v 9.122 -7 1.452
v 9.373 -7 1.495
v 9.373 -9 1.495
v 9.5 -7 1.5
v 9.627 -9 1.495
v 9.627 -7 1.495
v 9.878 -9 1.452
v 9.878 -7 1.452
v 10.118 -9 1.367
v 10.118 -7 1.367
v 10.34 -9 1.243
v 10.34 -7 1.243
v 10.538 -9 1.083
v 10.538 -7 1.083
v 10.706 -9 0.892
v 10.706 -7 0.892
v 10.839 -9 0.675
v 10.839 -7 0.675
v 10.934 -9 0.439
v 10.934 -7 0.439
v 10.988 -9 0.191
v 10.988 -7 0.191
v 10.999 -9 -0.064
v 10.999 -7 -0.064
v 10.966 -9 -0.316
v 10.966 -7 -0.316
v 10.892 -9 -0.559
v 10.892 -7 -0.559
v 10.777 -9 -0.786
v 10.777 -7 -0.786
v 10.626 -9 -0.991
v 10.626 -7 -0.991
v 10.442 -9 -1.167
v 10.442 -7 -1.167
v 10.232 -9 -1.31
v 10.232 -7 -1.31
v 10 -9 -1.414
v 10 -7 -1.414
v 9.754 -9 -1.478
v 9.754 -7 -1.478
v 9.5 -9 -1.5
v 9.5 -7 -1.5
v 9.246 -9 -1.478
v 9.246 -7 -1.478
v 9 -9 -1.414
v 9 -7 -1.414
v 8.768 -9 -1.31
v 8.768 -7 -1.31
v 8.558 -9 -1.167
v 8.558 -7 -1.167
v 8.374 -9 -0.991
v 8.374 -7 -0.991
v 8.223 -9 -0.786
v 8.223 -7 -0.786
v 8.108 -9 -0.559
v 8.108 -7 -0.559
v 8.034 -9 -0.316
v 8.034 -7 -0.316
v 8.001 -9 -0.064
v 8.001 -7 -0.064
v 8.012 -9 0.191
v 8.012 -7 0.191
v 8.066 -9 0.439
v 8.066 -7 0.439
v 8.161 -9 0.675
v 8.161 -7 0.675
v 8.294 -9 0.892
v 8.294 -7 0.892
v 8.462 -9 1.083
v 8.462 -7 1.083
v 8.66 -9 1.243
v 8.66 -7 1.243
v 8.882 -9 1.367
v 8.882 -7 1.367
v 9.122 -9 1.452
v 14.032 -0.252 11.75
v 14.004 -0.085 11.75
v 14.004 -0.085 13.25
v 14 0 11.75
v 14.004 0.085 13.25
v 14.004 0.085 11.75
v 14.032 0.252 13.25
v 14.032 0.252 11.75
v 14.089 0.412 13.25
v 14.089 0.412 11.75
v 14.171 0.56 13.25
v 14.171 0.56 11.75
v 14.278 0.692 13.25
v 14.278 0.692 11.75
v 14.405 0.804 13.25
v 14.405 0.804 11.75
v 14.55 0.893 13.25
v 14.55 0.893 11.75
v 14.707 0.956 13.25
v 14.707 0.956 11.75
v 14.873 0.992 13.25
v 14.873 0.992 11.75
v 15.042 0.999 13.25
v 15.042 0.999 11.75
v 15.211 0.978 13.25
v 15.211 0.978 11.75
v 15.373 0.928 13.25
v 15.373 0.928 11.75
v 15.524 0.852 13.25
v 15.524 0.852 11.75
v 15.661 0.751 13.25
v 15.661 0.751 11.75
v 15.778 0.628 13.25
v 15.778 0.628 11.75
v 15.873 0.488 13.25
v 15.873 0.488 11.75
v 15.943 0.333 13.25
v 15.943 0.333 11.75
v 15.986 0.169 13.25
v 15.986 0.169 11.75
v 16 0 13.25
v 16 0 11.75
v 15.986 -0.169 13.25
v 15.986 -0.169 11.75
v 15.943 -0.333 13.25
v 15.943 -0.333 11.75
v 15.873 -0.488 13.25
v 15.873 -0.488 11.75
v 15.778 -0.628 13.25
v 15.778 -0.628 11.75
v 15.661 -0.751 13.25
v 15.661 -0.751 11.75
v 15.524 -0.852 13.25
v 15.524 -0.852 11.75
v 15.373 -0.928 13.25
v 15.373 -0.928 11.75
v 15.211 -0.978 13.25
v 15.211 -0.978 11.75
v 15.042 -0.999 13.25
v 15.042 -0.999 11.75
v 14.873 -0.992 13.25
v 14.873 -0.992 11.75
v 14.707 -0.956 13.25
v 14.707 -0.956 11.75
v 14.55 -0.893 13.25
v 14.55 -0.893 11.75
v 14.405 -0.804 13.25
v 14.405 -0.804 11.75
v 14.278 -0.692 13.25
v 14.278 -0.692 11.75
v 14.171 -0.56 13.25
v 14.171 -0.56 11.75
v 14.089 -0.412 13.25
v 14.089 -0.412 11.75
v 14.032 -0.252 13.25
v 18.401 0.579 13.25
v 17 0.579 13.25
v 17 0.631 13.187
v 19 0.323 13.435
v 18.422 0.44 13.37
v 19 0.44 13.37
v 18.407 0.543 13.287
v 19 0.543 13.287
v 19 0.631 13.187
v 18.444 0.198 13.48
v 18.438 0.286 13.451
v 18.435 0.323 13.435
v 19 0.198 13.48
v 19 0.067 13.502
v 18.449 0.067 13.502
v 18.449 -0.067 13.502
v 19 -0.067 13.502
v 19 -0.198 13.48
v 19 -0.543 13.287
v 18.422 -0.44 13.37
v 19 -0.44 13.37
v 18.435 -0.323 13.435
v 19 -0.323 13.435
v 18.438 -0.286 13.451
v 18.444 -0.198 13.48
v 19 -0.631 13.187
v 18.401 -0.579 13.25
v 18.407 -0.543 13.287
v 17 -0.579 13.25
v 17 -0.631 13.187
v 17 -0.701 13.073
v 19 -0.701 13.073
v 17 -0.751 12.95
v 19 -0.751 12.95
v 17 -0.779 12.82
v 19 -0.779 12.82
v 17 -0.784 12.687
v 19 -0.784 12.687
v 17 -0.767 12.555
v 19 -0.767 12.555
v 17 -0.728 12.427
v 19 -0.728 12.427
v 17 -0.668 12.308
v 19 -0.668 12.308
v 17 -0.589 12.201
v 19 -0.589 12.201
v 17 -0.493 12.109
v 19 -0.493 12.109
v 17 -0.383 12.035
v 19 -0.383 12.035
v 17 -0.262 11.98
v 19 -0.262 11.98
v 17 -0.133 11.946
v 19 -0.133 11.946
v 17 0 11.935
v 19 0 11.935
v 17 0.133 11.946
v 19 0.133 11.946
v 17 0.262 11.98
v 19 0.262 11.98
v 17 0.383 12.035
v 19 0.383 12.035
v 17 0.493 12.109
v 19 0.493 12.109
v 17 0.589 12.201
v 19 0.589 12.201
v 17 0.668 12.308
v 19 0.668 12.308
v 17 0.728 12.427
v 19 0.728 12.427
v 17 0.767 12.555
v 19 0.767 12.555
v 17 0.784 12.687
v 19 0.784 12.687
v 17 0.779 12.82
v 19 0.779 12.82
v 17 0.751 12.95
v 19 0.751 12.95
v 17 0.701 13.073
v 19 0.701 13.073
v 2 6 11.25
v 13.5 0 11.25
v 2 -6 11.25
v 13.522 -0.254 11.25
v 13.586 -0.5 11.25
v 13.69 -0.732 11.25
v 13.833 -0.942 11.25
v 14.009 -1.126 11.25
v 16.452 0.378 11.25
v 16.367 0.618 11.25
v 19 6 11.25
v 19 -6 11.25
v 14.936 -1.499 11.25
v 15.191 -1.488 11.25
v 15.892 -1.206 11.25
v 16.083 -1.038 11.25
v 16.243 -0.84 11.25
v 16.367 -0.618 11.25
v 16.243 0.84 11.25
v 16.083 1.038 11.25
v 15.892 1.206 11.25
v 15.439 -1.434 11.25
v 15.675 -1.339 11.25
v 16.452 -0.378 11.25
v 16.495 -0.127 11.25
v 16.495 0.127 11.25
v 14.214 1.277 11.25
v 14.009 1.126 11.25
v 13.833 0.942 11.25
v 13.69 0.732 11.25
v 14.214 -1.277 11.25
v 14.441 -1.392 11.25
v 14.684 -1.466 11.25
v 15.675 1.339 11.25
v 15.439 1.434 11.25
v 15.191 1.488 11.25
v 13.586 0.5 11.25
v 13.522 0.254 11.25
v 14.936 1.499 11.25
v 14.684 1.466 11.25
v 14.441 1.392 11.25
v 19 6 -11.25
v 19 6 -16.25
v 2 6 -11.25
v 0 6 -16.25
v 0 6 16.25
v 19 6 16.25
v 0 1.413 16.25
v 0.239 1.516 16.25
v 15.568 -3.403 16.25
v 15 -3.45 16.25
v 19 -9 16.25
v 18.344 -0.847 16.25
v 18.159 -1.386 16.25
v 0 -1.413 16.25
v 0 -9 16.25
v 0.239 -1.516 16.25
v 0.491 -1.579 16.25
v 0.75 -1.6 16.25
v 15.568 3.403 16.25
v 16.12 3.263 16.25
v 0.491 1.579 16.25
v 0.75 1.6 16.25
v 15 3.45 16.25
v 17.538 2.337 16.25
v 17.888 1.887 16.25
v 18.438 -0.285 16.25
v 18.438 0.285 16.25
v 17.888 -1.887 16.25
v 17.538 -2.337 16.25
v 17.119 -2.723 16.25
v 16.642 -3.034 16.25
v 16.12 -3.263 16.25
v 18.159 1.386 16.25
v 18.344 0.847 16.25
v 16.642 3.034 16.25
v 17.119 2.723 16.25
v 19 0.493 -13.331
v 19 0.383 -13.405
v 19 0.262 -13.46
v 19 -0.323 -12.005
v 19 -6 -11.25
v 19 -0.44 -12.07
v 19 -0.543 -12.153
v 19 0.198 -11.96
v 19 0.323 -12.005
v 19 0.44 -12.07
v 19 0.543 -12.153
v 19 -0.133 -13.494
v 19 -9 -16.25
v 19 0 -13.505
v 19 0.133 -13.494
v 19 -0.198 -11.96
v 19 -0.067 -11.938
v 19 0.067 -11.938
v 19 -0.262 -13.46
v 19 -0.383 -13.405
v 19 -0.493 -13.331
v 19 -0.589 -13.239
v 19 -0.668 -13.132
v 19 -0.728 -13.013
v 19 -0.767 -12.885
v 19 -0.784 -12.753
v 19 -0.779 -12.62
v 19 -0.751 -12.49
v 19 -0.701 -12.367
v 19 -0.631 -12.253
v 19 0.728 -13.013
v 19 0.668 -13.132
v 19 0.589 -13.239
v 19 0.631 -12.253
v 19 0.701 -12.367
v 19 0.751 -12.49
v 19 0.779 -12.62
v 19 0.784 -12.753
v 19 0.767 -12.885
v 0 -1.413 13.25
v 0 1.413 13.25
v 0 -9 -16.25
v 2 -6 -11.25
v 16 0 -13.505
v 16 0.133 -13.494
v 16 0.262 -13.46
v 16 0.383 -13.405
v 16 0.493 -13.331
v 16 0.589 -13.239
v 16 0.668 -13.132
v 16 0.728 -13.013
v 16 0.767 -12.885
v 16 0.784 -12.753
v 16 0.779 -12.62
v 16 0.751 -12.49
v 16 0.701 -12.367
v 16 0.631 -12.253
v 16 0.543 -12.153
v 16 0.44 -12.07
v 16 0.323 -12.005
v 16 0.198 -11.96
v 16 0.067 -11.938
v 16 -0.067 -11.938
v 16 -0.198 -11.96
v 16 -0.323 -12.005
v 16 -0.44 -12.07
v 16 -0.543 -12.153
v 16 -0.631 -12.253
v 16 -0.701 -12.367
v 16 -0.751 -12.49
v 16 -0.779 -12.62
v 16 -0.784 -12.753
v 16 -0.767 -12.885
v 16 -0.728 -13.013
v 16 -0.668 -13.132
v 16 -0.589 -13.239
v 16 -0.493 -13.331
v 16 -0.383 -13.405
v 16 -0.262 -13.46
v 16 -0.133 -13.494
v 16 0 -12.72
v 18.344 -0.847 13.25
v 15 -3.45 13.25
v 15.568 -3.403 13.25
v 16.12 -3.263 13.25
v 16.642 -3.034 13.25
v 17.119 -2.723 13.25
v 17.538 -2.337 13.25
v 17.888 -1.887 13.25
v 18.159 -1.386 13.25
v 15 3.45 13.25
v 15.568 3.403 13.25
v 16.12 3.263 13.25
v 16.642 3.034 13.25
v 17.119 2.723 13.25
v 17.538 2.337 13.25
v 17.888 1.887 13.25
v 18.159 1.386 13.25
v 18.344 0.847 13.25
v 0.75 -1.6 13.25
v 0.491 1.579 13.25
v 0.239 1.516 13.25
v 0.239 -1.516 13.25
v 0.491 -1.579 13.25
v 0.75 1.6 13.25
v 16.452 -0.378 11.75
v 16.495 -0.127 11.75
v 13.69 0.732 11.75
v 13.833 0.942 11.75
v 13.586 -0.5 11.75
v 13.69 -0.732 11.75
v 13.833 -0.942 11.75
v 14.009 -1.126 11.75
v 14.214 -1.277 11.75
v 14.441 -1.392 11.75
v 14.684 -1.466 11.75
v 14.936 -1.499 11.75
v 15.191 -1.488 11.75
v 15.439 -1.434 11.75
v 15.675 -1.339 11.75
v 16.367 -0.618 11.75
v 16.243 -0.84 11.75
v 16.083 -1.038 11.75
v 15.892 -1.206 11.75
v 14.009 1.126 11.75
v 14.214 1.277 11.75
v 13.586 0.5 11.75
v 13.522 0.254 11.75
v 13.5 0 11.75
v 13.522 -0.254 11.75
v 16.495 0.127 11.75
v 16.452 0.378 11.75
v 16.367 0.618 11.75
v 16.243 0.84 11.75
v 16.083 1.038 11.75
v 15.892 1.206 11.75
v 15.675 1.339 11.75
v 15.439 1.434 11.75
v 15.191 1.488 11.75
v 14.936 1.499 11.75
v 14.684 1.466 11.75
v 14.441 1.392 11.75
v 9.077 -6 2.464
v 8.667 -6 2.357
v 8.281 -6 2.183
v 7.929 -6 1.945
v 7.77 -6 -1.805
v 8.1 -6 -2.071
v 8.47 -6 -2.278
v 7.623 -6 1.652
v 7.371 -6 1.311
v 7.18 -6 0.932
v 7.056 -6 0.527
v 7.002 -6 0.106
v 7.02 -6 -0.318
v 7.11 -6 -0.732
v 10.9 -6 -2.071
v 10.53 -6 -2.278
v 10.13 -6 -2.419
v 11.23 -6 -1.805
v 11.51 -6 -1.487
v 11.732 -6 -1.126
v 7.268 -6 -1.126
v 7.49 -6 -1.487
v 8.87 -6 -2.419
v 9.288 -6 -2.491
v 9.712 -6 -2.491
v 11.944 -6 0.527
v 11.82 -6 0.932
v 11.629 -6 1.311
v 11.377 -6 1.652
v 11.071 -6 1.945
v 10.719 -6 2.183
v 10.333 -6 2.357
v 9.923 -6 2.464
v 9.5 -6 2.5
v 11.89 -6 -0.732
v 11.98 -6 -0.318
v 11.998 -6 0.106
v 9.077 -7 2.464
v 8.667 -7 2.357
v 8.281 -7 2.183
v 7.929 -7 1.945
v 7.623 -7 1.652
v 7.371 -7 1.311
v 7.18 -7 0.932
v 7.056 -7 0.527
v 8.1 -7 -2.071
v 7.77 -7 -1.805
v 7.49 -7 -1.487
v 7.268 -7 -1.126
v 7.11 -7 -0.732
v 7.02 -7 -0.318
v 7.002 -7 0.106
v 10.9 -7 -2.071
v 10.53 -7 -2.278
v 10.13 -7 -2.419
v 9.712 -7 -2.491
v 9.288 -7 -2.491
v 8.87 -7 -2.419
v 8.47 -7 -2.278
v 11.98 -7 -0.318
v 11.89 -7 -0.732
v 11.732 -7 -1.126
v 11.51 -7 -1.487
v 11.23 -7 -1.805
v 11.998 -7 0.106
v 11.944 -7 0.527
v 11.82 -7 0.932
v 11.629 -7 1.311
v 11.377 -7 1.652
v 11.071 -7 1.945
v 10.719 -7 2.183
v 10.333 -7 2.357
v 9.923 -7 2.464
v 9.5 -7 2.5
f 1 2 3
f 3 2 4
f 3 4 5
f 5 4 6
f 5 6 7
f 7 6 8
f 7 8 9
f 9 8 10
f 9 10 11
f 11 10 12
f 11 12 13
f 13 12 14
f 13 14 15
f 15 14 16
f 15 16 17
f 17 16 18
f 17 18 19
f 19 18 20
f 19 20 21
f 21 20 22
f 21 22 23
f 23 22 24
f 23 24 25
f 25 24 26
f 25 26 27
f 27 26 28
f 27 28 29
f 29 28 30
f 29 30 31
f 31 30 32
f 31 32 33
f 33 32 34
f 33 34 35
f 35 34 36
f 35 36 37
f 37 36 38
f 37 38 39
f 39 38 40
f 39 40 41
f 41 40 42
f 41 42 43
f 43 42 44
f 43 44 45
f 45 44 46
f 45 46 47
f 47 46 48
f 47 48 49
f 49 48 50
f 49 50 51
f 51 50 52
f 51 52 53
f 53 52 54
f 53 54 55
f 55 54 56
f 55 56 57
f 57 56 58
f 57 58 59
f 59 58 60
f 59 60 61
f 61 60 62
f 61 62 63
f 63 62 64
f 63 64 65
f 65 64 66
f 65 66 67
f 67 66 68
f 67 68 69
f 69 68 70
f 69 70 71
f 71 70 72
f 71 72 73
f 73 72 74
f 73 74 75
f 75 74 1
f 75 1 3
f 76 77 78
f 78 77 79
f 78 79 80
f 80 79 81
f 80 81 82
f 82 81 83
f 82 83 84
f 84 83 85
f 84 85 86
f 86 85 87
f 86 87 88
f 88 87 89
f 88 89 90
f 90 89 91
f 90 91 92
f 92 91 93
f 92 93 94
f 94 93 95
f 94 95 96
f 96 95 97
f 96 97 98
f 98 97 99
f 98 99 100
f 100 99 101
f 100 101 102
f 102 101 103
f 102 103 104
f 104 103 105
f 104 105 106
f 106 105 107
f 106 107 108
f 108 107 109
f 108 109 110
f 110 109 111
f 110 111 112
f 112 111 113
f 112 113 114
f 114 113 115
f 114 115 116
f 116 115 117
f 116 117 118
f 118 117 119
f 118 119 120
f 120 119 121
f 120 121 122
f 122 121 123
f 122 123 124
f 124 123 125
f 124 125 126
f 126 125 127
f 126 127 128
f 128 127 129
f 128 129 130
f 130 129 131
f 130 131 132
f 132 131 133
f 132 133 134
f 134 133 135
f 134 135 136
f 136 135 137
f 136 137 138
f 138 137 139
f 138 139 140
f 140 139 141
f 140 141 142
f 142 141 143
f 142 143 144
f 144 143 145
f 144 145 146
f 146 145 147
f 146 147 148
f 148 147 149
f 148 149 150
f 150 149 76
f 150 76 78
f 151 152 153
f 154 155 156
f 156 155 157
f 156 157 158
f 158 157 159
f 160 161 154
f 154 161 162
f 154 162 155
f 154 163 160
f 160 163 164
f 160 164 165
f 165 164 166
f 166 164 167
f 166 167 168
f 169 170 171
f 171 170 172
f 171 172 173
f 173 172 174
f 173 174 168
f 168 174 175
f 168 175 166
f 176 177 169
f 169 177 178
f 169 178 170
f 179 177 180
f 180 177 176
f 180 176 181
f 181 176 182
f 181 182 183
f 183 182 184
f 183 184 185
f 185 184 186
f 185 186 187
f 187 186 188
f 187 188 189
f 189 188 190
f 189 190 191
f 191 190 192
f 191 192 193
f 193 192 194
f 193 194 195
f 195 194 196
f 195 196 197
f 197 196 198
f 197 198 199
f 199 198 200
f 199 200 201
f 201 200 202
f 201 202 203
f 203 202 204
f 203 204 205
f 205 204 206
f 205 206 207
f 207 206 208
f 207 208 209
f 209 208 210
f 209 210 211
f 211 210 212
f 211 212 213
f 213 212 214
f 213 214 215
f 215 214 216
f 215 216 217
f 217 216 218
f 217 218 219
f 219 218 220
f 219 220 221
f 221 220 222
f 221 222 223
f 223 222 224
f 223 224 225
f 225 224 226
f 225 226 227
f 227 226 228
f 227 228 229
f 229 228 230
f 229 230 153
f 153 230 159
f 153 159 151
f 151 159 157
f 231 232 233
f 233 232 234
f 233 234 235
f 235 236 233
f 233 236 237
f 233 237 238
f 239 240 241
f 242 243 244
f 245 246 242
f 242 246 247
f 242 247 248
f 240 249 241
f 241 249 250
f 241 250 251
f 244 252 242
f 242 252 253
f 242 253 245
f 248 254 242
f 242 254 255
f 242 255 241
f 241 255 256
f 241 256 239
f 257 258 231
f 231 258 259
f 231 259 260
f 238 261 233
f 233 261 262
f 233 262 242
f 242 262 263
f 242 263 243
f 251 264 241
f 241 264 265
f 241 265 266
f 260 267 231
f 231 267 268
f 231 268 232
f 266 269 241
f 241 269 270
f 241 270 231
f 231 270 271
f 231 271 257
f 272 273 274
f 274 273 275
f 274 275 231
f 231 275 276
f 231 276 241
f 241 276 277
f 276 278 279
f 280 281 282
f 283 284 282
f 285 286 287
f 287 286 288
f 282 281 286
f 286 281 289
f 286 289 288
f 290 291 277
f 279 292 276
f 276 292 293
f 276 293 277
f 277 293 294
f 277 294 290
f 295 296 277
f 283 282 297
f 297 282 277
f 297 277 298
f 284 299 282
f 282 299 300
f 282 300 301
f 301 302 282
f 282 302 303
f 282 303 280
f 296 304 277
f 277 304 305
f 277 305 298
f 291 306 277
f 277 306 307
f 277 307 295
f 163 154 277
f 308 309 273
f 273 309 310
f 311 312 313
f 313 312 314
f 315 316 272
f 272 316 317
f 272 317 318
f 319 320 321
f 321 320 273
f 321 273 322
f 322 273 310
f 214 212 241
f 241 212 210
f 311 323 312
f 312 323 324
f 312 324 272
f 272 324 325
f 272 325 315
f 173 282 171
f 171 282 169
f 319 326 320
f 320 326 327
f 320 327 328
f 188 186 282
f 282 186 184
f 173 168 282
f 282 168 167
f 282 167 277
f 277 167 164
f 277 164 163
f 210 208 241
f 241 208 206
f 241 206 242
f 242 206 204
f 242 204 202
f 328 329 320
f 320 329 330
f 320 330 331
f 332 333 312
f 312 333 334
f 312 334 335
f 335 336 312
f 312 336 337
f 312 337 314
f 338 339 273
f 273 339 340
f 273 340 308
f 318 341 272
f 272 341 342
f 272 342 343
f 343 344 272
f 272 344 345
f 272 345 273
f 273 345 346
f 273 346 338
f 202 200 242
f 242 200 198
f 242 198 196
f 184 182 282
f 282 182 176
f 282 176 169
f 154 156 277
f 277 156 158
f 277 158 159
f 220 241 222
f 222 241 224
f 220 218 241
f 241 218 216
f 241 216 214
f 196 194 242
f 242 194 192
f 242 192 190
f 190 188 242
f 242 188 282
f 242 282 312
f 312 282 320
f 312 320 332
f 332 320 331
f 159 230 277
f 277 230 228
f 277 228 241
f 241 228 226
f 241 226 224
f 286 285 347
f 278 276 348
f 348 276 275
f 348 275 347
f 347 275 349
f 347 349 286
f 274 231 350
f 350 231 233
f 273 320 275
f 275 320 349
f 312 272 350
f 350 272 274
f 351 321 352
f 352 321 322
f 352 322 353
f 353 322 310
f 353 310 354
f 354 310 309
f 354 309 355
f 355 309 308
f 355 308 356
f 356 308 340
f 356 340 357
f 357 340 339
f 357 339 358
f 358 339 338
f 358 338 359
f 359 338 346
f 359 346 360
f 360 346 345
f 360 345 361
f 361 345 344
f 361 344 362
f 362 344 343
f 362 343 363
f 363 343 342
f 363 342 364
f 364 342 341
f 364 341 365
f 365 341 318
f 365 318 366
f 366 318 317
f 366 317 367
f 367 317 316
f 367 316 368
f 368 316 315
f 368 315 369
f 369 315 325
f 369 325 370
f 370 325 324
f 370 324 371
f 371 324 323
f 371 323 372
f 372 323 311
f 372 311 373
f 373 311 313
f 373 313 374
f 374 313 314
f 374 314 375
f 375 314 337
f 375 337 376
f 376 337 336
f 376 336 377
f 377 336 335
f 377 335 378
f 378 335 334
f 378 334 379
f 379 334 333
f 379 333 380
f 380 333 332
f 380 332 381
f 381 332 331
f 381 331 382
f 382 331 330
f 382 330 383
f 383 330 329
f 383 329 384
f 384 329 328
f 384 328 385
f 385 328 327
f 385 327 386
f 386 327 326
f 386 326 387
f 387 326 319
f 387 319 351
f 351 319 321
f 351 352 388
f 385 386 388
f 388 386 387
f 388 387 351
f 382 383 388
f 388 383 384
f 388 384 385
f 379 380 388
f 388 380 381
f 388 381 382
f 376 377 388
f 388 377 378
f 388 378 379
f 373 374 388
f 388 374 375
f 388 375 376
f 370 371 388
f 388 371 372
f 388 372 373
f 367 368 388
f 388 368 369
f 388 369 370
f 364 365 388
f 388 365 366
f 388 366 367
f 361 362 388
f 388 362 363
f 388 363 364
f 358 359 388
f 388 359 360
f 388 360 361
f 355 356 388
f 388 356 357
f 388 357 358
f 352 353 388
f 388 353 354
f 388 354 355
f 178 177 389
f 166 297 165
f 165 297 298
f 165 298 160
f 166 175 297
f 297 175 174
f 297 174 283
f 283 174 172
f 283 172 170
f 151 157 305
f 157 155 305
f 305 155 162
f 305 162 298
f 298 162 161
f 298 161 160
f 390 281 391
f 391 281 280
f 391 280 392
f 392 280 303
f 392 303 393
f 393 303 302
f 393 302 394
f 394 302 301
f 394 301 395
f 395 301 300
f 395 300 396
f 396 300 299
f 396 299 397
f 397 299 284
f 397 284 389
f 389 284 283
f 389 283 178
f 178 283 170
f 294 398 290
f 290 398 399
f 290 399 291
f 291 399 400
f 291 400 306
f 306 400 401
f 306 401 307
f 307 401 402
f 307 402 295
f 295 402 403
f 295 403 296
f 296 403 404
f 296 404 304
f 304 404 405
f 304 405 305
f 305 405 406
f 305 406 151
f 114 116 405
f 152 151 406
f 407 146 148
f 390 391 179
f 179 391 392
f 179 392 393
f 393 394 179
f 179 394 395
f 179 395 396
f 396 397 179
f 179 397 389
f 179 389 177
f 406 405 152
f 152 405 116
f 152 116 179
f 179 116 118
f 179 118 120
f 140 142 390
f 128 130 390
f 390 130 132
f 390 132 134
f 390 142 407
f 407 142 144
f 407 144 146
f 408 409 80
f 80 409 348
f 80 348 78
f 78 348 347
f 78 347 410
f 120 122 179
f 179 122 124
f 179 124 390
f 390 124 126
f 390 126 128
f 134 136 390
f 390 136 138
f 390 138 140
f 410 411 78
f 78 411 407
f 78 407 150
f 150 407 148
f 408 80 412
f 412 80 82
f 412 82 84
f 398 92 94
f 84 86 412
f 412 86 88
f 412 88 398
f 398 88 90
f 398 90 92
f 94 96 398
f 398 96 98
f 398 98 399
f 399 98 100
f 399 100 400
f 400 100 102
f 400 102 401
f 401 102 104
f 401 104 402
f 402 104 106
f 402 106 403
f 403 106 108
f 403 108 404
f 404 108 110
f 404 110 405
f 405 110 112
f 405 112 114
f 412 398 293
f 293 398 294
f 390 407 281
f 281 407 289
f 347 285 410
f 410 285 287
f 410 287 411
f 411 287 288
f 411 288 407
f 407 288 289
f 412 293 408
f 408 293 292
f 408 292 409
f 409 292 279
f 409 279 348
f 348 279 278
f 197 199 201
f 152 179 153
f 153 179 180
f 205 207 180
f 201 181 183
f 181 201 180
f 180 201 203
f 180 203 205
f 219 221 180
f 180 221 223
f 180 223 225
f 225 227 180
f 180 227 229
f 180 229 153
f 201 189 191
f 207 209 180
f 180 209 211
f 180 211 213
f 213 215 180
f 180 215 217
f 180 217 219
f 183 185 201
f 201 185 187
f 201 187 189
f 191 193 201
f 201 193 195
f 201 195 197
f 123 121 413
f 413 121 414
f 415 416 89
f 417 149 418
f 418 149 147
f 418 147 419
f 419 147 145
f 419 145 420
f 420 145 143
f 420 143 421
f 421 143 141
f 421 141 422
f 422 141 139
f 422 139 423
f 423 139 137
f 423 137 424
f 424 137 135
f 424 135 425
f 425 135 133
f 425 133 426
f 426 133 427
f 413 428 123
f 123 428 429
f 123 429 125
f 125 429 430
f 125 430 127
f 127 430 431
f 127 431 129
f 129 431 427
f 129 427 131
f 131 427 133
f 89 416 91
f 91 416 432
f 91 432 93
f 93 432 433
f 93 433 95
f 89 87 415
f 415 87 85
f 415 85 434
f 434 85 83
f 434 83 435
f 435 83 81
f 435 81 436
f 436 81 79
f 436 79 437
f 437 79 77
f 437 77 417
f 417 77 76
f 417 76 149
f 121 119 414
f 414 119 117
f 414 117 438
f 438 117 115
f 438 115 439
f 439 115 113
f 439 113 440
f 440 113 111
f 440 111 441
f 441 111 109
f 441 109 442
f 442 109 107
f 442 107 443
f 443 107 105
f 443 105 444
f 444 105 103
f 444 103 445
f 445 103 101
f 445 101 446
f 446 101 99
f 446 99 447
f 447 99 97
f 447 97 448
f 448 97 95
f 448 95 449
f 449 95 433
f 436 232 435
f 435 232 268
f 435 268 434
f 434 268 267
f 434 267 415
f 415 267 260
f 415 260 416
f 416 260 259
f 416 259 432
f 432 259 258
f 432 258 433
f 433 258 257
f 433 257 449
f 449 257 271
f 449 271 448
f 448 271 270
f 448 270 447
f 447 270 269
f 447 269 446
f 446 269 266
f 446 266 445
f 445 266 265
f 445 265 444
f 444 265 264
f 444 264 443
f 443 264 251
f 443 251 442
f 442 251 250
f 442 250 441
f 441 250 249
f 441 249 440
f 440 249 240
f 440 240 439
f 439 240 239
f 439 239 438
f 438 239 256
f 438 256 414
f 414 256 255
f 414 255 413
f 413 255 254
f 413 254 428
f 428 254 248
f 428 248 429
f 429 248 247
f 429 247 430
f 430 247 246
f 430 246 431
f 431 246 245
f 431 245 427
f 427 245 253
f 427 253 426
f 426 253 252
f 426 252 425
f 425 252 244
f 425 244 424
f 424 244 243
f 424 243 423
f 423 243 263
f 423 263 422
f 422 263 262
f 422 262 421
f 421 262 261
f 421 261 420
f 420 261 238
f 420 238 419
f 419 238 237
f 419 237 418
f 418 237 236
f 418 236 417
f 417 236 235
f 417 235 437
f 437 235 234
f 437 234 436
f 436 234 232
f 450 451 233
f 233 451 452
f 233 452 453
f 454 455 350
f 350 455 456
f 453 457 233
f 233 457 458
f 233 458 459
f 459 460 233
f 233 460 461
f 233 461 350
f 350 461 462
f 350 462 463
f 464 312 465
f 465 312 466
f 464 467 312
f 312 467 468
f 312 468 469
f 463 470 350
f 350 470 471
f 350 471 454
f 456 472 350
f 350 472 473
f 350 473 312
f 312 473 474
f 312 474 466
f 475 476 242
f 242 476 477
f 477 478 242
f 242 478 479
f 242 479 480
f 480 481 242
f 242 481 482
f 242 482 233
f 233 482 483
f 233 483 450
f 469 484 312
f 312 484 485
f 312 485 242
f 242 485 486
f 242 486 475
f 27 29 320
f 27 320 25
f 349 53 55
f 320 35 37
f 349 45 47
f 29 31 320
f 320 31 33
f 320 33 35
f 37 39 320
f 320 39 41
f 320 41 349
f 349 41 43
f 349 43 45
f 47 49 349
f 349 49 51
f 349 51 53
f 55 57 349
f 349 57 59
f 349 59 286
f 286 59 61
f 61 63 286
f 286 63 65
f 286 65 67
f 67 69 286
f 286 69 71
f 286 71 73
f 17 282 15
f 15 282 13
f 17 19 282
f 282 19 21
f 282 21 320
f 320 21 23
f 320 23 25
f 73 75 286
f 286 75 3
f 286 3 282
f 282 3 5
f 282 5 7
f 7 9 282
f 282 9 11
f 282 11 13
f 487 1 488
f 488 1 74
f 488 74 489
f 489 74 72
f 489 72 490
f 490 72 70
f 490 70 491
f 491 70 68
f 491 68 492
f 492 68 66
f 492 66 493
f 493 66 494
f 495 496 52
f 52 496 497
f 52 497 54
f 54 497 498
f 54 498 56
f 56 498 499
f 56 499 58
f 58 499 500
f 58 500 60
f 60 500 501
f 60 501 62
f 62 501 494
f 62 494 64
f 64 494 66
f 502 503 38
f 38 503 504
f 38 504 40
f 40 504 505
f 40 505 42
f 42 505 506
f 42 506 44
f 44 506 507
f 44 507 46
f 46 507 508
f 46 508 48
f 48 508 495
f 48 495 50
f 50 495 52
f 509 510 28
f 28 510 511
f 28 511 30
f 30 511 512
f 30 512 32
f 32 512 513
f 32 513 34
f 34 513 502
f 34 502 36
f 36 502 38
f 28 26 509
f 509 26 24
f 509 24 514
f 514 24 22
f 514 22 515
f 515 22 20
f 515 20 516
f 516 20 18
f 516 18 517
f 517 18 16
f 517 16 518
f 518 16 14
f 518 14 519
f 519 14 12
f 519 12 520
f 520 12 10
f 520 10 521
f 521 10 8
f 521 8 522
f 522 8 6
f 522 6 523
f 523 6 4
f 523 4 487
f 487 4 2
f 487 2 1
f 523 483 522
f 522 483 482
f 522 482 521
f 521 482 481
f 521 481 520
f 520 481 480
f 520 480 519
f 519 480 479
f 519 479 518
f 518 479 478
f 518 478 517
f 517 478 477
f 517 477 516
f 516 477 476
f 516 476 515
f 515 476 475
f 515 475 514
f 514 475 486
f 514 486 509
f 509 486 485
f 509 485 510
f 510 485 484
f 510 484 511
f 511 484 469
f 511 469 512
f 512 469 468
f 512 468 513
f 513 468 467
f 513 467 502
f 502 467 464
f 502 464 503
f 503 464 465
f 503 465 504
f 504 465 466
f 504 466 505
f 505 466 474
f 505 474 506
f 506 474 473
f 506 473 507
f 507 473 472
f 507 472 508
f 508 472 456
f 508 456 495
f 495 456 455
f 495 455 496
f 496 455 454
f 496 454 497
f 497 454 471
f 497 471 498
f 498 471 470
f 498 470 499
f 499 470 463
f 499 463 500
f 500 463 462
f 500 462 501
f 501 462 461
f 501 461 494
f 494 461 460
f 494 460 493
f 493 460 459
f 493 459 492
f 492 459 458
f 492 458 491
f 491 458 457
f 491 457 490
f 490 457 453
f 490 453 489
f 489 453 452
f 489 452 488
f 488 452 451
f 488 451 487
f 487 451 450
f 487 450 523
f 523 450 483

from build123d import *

# Parameters (mm, degrees)
SKETCH_1_W           = 5
SKETCH_1_H           = 12
EXTRUDE_1_DEPTH      = 19
EXTRUDE_1_2_DEPTH    = 19
SKETCH_2_W           = 32.5
SKETCH_2_H           = 12
EXTRUDE_2_DEPTH      = 2
SKETCH_3_R           = 0.785
CUT_EXTRUDE_2_DEPTH  = 3
CUT_EXTRUDE_3_DEPTH  = 3
EXTRUDE_START        = 1
SKETCH_7_R           = 0.785
EXTRUDE_3_DEPTH      = 1
SKETCH_8_W           = 4.508312044
SKETCH_8_H           = 2.561477722
SKETCH_8_R           = 1
CUT_EXTRUDE_9_DEPTH  = 1
SKETCH_9_R           = 1
CUT_EXTRUDE_10_DEPTH = 3
SKETCH_12_R          = 1.5
CUT_EXTRUDE_11_DEPTH = 0.5
SKETCH_13_W          = 19
SKETCH_13_H          = 32.5
EXTRUDE_4_DEPTH      = 3
SKETCH_14_R          = 1.5
CUT_EXTRUDE_12_DEPTH = 3
SKETCH_15_R          = 2.5
CUT_EXTRUDE_13_DEPTH = 1


with BuildPart() as part:
    # 草图1 → 凸台-拉伸1 (new body)
    with BuildSketch(Plane(origin=(0, 0, 0), x_dir=(0, 0, -1), z_dir=(1, 0, 0))):
        with Locations((-13.75, 0)):
            Rectangle(SKETCH_1_W, SKETCH_1_H)
    extrude(amount=EXTRUDE_1_DEPTH)



with BuildPart() as body_2:
    # 草图1 → Extrude 1 2 (new body)
    with BuildSketch(Plane(origin=(0, 0, 0), x_dir=(0, 0, -1), z_dir=(1, 0, 0))):
        with Locations((13.75, 0)):
            Rectangle(SKETCH_1_W, SKETCH_1_H)
    extrude(amount=EXTRUDE_1_2_DEPTH)


with BuildPart() as part_1:
    add(part.part)

    add(body_2.part)  # 凸台-拉伸2 merges body 2
    # 草图2 → 凸台-拉伸2 (add)
    with BuildSketch(Plane.ZY):
        Rectangle(SKETCH_2_W, SKETCH_2_H)
    extrude(amount=-EXTRUDE_2_DEPTH)

    # 草图3 → 切除-拉伸2 (cut)
    with BuildSketch(Plane(origin=(19, 0, 0), x_dir=(0, 0, -1), z_dir=(1, 0, 0))):
        with Locations((-12.72, 0)):
            Circle(SKETCH_3_R)
        with Locations((12.72, 0)):
            Circle(SKETCH_3_R)
    extrude(amount=-CUT_EXTRUDE_2_DEPTH, mode=Mode.SUBTRACT)

    # 草图4 → 切除-拉伸3 (cut)
    with BuildSketch(Plane.XY.offset(16.25)):
        with BuildLine():
            ThreePointArc((0.75, 1.6), (-0.85, 0), (0.75, -1.6))
            Line((0.75, -1.6), (15, -3.45))
            ThreePointArc((15, -3.45), (18.45, 0), (15, 3.45))
            Line((15, 3.45), (0.75, 1.6))
        make_face()
    extrude(amount=-CUT_EXTRUDE_3_DEPTH, mode=Mode.SUBTRACT)

    # 草图7 → 凸台-拉伸3 (add)
    with BuildSketch(Plane(origin=(16, 0, 0), x_dir=(0, 0, -1), z_dir=(1, 0, 0)).offset(EXTRUDE_START)):
        with Locations((-12.72, 0)):
            Circle(SKETCH_7_R)
    extrude(amount=-EXTRUDE_3_DEPTH)

    # 草图8 → 切除-拉伸9 (cut)
    with BuildSketch(Plane.XY.offset(13.25)):
        with Locations((15, 0)):
            Rectangle(SKETCH_8_W, SKETCH_8_H)
        with Locations((15, 0)):
            Circle(SKETCH_8_R, mode=Mode.SUBTRACT)
    extrude(amount=CUT_EXTRUDE_9_DEPTH, mode=Mode.SUBTRACT)

    # 草图9 → 切除-拉伸10 (cut)
    with BuildSketch(Plane.XY.offset(13.25)):
        with Locations((15, 0)):
            Circle(SKETCH_9_R)
    extrude(amount=-CUT_EXTRUDE_10_DEPTH, mode=Mode.SUBTRACT)

    # 草图12 → 切除-拉伸11 (cut)
    with BuildSketch(Plane(origin=(0, 0, 11.25), x_dir=(-1, 0, 0), z_dir=(0, 0, -1))):
        with Locations((-15, 0)):
            Circle(SKETCH_12_R)
    extrude(amount=-CUT_EXTRUDE_11_DEPTH, mode=Mode.SUBTRACT)

    # 草图13 → 凸台-拉伸4 (add)
    with BuildSketch(Plane.XZ.offset(6)):
        with Locations((9.5, 0)):
            Rectangle(SKETCH_13_W, SKETCH_13_H)
    extrude(amount=EXTRUDE_4_DEPTH)

    # 草图14 → 切除-拉伸12 (cut)
    with BuildSketch(Plane.XZ.offset(9)):
        with Locations(Location((9.5, 0, 0), (0, 0, 270))):
            Circle(SKETCH_14_R)
    extrude(amount=-CUT_EXTRUDE_12_DEPTH, mode=Mode.SUBTRACT)

    # 草图15 → 切除-拉伸13 (cut)
    with BuildSketch(Plane(origin=(0, -6, 0), x_dir=(1, 0, 0), z_dir=(0, 1, 0))):
        with Locations(Location((9.5, 0, 0), (0, 0, 270))):
            Circle(SKETCH_15_R)
    extrude(amount=-CUT_EXTRUDE_13_DEPTH, mode=Mode.SUBTRACT)


solid = part_1.part
